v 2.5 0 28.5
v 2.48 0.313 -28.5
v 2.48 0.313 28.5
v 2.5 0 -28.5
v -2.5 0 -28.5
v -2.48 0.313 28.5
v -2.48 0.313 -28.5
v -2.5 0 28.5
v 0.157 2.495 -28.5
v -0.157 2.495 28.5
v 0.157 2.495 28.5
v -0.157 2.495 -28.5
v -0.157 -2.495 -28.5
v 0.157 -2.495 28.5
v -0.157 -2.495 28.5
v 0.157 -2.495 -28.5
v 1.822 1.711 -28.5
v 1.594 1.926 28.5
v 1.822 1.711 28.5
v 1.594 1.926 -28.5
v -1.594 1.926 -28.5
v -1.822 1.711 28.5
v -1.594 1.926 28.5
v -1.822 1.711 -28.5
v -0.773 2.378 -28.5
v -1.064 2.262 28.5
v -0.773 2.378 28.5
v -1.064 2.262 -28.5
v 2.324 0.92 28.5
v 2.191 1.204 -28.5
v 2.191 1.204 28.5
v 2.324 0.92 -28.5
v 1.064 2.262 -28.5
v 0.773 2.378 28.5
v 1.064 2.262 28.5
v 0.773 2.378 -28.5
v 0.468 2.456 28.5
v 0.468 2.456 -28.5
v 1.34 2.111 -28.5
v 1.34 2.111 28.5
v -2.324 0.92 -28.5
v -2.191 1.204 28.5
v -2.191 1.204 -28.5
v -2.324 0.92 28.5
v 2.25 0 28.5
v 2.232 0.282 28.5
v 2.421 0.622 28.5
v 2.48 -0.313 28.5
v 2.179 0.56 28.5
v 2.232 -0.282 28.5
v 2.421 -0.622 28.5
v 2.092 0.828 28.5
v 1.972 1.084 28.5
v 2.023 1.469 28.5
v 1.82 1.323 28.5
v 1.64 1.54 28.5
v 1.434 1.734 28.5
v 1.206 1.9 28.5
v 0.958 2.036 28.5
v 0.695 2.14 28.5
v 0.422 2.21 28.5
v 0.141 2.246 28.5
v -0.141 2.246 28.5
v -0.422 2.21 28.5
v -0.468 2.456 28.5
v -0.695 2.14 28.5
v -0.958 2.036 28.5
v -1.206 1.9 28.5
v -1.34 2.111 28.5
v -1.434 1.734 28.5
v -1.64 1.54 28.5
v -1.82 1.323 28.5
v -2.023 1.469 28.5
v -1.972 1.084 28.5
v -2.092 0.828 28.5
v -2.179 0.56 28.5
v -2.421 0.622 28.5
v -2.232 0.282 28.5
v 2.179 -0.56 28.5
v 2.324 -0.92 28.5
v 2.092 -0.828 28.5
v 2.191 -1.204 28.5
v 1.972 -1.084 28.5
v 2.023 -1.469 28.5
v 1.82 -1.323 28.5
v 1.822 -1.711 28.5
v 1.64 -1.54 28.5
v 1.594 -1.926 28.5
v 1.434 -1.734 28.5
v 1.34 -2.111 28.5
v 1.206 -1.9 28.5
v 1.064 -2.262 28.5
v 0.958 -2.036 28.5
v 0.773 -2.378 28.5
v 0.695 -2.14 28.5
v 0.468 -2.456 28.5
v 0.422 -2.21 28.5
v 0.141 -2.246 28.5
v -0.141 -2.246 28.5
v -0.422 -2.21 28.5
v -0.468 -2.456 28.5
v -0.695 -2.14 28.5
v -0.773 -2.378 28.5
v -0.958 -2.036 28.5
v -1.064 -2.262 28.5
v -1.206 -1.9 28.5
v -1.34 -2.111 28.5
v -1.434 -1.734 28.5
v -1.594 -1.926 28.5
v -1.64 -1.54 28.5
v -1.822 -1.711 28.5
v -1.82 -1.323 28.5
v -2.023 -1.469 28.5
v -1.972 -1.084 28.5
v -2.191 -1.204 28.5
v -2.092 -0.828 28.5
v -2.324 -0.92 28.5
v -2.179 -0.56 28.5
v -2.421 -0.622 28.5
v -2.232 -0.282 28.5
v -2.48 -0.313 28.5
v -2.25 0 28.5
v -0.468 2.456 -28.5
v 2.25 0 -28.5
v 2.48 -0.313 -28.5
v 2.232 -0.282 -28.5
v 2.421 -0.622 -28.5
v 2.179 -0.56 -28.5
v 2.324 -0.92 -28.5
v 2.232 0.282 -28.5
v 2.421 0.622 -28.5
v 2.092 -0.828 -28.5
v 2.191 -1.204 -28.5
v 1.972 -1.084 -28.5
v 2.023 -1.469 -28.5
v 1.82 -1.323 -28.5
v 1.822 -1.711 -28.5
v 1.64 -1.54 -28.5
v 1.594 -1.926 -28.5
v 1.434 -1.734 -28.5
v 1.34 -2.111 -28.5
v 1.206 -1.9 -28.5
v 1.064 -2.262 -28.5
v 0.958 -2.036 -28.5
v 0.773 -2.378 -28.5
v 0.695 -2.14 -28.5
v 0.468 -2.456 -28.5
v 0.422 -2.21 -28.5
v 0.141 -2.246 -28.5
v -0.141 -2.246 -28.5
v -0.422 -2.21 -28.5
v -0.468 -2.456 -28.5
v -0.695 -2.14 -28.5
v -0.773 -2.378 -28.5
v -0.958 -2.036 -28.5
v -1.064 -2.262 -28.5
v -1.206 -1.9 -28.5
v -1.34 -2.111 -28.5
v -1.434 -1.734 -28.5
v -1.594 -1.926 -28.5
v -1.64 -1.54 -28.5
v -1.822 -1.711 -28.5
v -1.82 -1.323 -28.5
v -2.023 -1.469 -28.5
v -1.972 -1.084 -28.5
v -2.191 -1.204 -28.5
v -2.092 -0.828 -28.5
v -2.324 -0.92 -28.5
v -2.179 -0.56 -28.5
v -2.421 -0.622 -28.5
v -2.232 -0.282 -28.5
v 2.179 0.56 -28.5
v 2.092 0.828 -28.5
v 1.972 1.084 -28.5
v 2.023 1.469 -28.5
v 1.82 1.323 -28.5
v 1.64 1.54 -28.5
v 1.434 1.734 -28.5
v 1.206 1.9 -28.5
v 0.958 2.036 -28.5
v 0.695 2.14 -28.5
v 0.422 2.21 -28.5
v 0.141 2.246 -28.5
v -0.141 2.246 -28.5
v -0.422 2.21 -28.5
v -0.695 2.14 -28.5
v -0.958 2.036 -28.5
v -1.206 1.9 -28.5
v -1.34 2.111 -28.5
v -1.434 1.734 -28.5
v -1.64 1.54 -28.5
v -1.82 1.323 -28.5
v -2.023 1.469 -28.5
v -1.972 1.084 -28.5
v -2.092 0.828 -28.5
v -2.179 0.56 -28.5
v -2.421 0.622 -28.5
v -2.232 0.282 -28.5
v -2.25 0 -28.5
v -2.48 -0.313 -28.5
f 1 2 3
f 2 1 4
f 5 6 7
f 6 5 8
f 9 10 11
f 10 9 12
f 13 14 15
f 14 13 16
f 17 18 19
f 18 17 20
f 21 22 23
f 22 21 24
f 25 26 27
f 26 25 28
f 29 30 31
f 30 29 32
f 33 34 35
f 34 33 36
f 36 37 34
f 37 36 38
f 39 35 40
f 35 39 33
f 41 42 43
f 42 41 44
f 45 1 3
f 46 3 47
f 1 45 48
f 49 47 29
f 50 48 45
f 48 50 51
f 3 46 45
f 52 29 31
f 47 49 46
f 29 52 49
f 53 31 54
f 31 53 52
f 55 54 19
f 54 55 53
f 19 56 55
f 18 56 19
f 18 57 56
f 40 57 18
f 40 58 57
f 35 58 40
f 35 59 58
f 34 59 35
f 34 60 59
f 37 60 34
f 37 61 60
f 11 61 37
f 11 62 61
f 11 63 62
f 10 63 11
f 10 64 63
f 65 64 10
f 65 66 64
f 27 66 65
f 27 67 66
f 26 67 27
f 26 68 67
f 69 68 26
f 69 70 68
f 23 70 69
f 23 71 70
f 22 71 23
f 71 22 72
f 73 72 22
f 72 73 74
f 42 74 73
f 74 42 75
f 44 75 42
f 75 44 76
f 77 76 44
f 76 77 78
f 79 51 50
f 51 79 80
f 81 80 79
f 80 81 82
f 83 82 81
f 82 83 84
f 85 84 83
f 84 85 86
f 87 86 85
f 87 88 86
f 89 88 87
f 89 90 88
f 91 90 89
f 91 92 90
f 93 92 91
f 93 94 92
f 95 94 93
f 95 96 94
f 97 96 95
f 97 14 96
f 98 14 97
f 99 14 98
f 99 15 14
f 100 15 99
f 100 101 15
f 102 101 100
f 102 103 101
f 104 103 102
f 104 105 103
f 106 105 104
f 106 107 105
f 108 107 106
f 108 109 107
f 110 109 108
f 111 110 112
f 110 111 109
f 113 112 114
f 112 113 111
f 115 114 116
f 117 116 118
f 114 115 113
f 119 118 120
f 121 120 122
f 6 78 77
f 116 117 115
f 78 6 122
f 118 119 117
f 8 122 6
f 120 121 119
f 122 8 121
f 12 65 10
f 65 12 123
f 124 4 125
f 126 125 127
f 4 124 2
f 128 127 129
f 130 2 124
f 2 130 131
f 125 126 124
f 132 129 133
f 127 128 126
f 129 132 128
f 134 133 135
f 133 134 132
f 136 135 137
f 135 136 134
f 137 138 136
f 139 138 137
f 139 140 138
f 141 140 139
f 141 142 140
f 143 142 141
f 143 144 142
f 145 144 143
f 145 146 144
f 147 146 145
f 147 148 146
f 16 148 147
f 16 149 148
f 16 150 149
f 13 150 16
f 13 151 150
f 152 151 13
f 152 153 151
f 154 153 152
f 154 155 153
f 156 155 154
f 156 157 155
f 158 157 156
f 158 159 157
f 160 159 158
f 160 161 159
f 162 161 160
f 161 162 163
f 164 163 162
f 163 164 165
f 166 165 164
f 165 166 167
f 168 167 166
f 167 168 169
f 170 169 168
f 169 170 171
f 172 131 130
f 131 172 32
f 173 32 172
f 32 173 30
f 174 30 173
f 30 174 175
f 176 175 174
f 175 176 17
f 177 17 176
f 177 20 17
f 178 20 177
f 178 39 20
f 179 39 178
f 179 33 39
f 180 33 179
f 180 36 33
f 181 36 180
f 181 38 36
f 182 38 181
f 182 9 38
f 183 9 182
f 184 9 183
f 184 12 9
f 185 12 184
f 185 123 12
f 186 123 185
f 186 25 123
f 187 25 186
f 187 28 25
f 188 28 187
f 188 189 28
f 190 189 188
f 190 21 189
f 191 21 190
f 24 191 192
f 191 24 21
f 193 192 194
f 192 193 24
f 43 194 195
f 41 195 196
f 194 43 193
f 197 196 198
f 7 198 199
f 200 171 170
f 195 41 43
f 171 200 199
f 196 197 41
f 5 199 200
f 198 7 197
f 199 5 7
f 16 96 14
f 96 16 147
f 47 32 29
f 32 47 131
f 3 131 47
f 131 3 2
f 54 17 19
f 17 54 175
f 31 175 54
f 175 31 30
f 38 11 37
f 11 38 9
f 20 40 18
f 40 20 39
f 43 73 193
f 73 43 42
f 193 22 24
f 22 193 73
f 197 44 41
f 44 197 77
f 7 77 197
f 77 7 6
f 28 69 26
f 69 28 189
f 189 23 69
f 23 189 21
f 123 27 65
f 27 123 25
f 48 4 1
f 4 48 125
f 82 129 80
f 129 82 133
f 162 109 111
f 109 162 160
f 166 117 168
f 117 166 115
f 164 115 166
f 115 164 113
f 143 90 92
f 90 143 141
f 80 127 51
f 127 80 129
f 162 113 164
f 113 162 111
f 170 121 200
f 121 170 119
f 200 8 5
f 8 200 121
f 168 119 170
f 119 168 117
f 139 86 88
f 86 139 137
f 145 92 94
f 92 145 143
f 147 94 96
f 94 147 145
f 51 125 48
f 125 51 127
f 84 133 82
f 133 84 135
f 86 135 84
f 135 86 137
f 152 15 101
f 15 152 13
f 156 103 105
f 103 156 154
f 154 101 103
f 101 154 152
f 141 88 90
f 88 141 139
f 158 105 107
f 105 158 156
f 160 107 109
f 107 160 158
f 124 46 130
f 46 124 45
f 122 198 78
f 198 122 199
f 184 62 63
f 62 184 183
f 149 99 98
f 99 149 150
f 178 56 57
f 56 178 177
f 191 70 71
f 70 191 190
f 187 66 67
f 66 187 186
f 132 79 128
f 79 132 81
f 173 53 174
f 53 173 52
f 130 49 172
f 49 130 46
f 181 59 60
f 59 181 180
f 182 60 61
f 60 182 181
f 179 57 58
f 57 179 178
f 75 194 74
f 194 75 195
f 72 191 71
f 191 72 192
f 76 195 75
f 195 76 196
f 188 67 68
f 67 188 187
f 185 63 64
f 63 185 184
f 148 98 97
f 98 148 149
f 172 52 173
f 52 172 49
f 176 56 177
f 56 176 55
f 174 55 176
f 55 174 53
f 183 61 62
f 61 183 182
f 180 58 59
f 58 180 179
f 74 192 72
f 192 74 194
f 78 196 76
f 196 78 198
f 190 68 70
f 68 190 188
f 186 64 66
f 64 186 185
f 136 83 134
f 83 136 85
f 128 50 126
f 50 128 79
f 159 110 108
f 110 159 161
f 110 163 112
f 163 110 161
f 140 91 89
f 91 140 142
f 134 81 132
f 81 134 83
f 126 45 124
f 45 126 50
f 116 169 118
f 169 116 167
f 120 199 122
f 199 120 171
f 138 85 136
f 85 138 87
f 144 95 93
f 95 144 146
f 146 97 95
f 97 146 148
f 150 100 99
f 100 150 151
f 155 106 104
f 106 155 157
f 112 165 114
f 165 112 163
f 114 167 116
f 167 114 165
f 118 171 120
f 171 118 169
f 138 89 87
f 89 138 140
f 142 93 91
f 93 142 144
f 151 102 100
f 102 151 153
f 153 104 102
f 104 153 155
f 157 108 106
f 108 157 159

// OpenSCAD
$fn = 50;


difference() {
	union() {
		translate(v = [0, 0, -28.5000000000]) {
			cylinder(h = 57, r = 2.5000000000);
		}
	}
	union() {
		translate(v = [0, 0, -100.0000000000]) {
			cylinder(h = 200, r = 2.2500000000);
		}
	}
}
